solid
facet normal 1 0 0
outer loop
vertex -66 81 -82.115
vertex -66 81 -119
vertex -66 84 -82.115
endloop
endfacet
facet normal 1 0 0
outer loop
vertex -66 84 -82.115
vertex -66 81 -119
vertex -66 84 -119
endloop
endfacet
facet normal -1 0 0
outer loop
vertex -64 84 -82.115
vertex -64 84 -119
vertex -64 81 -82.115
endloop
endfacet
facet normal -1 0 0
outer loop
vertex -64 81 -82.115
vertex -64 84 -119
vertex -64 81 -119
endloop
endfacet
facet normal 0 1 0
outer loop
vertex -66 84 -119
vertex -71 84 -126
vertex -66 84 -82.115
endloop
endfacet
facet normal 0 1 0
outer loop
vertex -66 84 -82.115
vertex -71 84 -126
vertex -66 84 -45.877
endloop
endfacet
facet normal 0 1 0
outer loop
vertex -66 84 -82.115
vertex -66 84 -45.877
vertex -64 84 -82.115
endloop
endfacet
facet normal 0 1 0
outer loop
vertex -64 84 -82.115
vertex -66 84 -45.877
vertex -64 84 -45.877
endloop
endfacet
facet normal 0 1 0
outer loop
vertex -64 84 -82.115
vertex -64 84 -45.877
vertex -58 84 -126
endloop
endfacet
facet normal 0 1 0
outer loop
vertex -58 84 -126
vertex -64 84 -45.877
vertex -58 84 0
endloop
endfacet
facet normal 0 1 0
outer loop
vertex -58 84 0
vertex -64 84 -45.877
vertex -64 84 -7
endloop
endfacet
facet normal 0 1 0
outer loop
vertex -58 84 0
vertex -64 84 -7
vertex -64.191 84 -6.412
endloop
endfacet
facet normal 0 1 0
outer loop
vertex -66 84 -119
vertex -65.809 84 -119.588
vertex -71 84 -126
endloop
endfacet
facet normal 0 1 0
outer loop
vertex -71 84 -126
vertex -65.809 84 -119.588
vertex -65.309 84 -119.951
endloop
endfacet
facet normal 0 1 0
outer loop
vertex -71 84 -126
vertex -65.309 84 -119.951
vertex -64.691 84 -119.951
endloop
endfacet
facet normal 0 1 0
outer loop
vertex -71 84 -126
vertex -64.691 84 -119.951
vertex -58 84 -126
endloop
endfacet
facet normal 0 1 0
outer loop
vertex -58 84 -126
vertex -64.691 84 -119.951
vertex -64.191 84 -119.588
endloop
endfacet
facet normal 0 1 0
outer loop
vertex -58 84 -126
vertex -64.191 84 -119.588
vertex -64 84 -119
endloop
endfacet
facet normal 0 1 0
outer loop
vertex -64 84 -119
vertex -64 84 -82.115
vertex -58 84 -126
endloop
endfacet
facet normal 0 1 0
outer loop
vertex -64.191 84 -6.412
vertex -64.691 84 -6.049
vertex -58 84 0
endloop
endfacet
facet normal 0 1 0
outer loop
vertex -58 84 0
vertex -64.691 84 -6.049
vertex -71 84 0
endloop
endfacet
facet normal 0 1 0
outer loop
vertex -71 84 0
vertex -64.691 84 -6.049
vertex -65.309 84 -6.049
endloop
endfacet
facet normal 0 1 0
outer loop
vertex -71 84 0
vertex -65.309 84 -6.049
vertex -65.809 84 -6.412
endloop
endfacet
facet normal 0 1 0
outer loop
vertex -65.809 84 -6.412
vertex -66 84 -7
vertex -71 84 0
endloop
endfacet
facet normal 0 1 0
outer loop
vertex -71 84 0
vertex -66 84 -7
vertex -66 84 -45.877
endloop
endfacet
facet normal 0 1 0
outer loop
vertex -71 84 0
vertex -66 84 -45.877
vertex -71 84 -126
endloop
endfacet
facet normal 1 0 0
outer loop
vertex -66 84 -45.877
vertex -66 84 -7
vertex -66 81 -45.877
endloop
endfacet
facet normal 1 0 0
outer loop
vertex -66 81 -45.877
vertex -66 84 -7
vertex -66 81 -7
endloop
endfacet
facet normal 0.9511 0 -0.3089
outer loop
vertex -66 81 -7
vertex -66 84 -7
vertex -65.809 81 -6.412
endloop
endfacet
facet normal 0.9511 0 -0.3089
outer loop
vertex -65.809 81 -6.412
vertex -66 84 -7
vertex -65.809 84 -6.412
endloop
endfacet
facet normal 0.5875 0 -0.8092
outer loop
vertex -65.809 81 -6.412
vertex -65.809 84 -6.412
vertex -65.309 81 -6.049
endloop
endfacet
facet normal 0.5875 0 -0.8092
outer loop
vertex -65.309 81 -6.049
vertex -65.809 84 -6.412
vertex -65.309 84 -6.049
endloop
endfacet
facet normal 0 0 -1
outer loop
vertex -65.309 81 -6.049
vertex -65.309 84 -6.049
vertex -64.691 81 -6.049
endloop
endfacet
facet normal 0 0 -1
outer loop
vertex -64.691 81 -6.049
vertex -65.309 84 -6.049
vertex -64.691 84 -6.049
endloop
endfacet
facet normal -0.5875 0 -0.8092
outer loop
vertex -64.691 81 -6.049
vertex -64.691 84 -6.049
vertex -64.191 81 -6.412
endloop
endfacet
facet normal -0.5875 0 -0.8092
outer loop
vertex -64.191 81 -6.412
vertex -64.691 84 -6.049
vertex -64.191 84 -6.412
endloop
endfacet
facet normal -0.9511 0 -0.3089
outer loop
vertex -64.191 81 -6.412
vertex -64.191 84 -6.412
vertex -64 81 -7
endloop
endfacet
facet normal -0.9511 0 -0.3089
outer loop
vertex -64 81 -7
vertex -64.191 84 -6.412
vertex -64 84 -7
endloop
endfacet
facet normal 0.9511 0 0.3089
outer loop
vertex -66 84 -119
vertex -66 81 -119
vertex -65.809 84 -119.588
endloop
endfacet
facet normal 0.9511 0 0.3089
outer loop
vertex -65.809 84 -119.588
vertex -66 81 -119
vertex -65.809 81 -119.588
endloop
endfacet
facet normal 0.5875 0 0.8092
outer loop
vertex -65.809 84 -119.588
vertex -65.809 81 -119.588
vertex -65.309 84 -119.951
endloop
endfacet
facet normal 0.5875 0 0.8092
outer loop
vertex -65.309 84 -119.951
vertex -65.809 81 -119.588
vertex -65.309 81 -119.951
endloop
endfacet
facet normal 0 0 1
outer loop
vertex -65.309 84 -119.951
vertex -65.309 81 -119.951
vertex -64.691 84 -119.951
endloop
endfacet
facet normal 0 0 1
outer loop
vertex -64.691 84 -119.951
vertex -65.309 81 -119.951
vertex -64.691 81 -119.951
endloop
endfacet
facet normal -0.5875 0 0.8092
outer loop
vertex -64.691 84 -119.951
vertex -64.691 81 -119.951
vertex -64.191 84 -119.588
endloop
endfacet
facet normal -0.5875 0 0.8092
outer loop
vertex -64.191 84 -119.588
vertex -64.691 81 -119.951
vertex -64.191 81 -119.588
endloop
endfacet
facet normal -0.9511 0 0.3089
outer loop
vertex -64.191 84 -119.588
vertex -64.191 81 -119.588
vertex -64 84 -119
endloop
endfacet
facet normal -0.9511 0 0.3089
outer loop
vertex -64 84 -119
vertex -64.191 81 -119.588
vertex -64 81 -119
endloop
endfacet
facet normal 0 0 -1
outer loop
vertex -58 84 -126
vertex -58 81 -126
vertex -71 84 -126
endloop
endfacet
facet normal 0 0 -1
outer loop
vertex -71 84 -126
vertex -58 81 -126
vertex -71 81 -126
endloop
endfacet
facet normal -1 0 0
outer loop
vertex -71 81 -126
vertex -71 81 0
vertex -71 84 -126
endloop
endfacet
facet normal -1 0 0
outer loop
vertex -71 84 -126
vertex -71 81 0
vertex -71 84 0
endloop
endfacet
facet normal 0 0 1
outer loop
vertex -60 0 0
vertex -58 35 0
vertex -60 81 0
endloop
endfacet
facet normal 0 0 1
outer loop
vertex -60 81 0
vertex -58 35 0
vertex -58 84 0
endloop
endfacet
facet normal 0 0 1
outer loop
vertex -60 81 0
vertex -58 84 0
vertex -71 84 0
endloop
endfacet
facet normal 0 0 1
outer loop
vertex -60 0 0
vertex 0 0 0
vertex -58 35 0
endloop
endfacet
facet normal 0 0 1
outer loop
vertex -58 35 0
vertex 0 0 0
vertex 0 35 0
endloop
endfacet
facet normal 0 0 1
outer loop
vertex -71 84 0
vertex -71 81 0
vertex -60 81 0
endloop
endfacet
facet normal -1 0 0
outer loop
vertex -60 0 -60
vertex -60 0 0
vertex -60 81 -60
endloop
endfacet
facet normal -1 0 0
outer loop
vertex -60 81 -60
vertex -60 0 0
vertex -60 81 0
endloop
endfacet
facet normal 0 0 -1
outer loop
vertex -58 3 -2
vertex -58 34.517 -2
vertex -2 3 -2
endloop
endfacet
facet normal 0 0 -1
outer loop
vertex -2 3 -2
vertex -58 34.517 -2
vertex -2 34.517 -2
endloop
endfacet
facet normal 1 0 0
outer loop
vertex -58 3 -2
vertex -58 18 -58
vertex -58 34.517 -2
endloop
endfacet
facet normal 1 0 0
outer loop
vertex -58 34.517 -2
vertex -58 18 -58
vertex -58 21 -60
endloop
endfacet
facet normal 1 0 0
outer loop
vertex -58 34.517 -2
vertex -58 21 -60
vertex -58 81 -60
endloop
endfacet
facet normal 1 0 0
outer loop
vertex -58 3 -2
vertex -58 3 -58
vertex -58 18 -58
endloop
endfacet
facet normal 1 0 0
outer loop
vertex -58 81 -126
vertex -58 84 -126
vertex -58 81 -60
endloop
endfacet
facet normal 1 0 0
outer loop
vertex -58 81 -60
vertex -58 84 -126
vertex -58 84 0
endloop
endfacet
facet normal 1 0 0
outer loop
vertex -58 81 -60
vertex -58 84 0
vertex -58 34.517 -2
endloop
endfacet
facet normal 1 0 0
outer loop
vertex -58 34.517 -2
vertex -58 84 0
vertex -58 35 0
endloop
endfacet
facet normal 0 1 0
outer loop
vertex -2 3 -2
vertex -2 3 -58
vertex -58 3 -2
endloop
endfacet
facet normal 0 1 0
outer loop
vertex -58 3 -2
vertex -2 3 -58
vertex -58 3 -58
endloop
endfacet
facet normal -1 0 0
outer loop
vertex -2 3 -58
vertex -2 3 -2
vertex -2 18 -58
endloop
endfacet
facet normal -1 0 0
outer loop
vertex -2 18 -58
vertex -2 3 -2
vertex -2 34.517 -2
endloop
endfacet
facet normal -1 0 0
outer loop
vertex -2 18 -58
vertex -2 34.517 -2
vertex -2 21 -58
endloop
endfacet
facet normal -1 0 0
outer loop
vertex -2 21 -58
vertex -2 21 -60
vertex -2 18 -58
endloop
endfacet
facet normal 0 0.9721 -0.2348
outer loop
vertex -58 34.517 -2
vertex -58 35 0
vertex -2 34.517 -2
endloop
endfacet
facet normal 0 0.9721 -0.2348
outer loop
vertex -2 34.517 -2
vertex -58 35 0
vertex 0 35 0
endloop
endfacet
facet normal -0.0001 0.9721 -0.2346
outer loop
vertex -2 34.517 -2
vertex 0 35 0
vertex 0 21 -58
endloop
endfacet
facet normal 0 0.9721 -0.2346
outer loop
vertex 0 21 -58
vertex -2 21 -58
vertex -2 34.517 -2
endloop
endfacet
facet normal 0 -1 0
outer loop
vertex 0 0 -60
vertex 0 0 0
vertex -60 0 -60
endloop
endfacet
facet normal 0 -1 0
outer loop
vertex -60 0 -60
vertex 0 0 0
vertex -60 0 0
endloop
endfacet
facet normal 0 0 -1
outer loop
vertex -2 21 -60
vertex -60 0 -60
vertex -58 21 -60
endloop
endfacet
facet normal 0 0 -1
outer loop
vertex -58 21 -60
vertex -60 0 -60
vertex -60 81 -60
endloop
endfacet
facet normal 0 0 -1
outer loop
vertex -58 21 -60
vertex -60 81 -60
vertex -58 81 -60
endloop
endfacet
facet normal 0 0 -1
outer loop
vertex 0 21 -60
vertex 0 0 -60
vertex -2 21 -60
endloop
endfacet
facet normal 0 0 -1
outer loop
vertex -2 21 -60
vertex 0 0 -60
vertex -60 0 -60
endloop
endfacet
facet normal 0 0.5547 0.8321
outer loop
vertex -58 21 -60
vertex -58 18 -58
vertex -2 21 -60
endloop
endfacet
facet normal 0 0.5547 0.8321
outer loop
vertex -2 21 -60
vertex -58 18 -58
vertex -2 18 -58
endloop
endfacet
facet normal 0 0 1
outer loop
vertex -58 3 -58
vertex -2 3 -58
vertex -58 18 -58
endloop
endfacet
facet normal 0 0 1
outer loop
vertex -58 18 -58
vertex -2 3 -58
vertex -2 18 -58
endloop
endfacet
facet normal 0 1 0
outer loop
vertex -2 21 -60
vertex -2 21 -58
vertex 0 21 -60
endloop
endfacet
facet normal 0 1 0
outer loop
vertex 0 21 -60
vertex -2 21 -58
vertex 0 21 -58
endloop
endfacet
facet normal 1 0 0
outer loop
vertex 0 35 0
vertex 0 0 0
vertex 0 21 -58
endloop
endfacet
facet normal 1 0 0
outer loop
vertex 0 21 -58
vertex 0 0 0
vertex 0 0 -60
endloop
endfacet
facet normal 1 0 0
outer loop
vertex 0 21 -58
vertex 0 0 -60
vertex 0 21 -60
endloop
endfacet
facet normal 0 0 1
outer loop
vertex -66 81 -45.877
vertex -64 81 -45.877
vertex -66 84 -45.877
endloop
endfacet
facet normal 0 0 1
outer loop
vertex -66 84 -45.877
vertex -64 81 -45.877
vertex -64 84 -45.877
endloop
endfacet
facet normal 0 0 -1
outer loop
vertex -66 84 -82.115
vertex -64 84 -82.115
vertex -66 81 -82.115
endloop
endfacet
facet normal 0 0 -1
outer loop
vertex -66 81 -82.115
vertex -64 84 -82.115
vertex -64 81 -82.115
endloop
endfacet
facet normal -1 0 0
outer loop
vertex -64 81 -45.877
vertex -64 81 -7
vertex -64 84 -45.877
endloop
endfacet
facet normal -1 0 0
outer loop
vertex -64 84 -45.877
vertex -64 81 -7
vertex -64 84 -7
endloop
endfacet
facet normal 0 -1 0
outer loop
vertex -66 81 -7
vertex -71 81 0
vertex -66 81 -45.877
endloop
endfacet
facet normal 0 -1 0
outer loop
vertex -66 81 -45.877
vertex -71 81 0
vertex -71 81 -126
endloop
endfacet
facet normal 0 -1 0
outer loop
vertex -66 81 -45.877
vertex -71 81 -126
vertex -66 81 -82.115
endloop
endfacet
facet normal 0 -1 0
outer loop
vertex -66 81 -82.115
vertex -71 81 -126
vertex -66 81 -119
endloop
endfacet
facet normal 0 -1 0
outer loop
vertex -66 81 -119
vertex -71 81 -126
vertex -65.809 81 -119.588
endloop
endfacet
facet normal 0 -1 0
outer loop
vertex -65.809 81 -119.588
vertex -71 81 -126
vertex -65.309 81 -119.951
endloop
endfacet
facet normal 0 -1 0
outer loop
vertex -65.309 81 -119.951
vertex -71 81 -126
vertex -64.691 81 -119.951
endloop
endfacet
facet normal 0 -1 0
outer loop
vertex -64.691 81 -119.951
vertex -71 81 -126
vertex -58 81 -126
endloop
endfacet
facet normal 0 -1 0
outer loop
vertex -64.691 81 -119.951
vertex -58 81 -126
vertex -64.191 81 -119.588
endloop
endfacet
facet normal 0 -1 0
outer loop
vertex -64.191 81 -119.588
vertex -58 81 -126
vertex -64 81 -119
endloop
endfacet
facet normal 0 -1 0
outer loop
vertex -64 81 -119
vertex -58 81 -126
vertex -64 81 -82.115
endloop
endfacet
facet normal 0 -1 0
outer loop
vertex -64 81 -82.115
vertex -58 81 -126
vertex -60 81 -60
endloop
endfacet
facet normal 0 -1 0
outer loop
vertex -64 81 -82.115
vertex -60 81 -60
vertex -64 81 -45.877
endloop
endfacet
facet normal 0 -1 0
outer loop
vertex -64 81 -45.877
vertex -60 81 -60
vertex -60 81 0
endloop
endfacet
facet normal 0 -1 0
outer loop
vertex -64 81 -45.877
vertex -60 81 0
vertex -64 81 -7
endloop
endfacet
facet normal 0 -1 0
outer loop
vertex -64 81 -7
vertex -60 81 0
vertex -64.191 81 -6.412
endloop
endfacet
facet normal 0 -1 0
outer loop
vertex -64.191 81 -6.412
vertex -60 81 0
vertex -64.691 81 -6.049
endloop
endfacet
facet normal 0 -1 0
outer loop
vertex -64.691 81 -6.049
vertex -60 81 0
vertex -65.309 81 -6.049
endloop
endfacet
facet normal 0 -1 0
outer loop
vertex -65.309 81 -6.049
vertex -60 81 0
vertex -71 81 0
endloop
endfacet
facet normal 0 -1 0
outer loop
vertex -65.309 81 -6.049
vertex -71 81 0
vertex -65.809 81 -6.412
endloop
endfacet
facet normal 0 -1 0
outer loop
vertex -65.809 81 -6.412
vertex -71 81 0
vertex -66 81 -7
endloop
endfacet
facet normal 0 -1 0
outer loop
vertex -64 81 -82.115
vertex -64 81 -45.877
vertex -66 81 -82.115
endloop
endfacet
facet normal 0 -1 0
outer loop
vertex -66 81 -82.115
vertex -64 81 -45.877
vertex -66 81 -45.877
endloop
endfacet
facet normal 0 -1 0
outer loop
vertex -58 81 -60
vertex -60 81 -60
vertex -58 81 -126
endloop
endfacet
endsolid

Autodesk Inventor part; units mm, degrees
ref_plane "YZ Plane" through (0, 0, 0) normal (1, 0, 0) x (0, 1, 0)
ref_plane "XZ Plane" through (0, 0, 0) normal (0, 1, 0) x (-1, 0, 0)
ref_plane "XY Plane" through (0, 0, 0) normal (0, 0, 1) x (1, 0, 0)
sketch "Sketch1" plane through (0, 0, 0) normal (0, 1, 0) x (-1, 0, 0)
  line L0 (0, 0) -> (60, 0)
  line L1 (60, 0) -> (60, -60)
  line L2 (60, -60) -> (0, -60)
  line L3 (0, -60) -> (0, 0)
  dimension "d0" = 60
  dimension "d1" = 60
extrude "Extrusion1" add sketch "Sketch1" along normal blind 3
sketch "Sketch3" plane through (0, 3, 0) normal (0, 1, 0) x (1, 0, 0)
  line L0 (0, 60) -> (-60, 60) projected
  line L1 (0, 0) -> (0, 60) projected
  line L2 (-60, 60) -> (0, 60)
  line L3 (0, 60) -> (0, 58)
  line L4 (0, 58) -> (-60, 58)
  line L5 (-60, 58) -> (-60, 60)
  dimension "d4" = 2
extrude "Extrusion2" add sketch "Sketch3" along normal blind 18
sketch "Sketch4" plane through (0, 0, 0) normal (1, 0, 0) x (0, 0, -1)
  line L0 (0, 3) -> (58, 3) projected
  line L1 (0, 3) -> (0, 35)
  line L2 (60, 21) -> (58, 21) projected
  line L3 (0, 35) -> (58, 21)
  line L4 (58, 21) -> (58, 3)
  line L5 (58, 3) -> (0, 3)
  point P0 (0, 0)
  dimension "d7" = 32
extrude "Extrusion3" add sketch "Sketch4" against normal blind 2
sketch "Sketch5" plane through (-60, 0, -60) normal (-1, 0, 0) x (0, 0, 1)
  line L0 (2, 21) -> (0, 21) projected
  line L1 (0, 21) -> (2, 18)
  line L2 (2, 3) -> (2, 21) projected
  line L3 (2, 18) -> (2, 21)
  line L4 (2, 21) -> (0, 21)
  line L5 (0, 0) -> (0, 21) projected
  point P0 (60, 0)
  dimension "d10" = 3
extrude "Extrusion4" cut sketch "Sketch5" against normal blind 58
sketch "Sketch6" plane through (-60, 0, -60) normal (-1, 0, 0) x (0, 0, 1)
  line L0 (0, 0) -> (0, 21) projected
  line L1 (0, 21) -> (2, 21)
  line L2 (60, 35) -> (2, 21) projected
  line L3 (2, 21) -> (60, 35)
  line L4 (60, 35) -> (60, 0)
  line L5 (60, 0) -> (0, 0) projected
  line L6 (60, 0) -> (0, 0)
  line L7 (0, 0) -> (0, 21)
extrude "Extrusion5" add sketch "Sketch6" against normal blind 2
sketch "Sketch8" plane through (-58, 0, -60) normal (1, 0, 0) x (0, 0, -1)
  line L0 (-2, 3) -> (-60, 3) projected
  line L1 (-60, 3) -> (-58, 3)
  line L2 (-58, 3) -> (-58, 34.5172)
  line L3 (-2, 21) -> (-60, 35) projected
  line L4 (-58, 34.5172) -> (-60, 35)
  line L5 (-60, 35) -> (-60, 3)
  point P0 (-60, 0)
  dimension "d15" = 2
extrude "Extrusion6" add sketch "Sketch8" along normal blind 56
sketch "Sketch9" plane through (-60, 0, -60) normal (-1, 0, 0) x (0, 0, 1)
  line L0 (0, 21) -> (2, 21) projected
  line L1 (0, 21) -> (60, 21)
  line L2 (60, 21) -> (60, 81)
  line L3 (60, 81) -> (0, 81)
  line L4 (0, 81) -> (0, 21)
  point P0 (60, 0)
  dimension "d18" = 60
  dimension "d19" = 60
extrude "Extrusion7" add sketch "Sketch9" against normal blind 2
sketch "Sketch11" plane through (-58, 0, -60) normal (1, 0, 0) x (0, 0, -1)
  line L0 (0, 81) -> (-60, 81) projected
  line L1 (-60, 81) -> (66, 81)
  line L2 (66, 81) -> (66, 84)
  line L3 (66, 84) -> (-60, 84)
  line L4 (-60, 84) -> (-60, 81)
  point P0 (-60, 0)
  dimension "d26" = 3
  dimension "d27" = 126
extrude "Extrusion9" add sketch "Sketch11" against normal blind 13
sketch "Sketch12" plane through (-58, 84, 0) normal (0, 1, 0) x (1, 0, 0)
  circle A0 centre (-7, 119) radius 1
  line L0 (0, 126) -> (-13, 126) projected
  line L1 (0, 126) -> (0, 0) projected
  circle A1 centre (-7, 7) radius 1
  line L2 (0, 0) -> (-13, 0) projected
  point P0 (58, 0)
  dimension "d30" = 2
  dimension "d31" = 7
  dimension "d32" = 7
  dimension "d33" = 2
  dimension "d34" = 7
  dimension "d35" = 7
extrude "Extrusion10" cut sketch "Sketch12" against normal blind 13
sketch "Sketch13" plane through (-58, 84, 0) normal (0, 1, 0) x (1, 0, 0)
  circle A0 centre (-7, 7) radius 1 projected
  line L0 (-8, 7) -> (-8, 119)
  line L1 (-8, 119) -> (-6, 119)
  line L2 (-6, 119) -> (-6, 7)
  line L3 (-6, 7) -> (-8, 7)
  circle A1 centre (-7, 119) radius 1 projected
  point P0 (58, 0)
  dimension "d40" = 0
extrude "Extrusion11" cut sketch "Sketch13" against normal blind 10 contours A0 L0 A1 L2 | A1 L1 picked at (-6.9598, 118.6691)
sketch "Sketch14" plane through (-58, 84, 0) normal (0, 1, 0) x (1, 0, 0)
  point P0 (58, 0)
sketch "Sketch15" plane through (-58, 84, 0) normal (0, 1, 0) x (1, 0, 0)
  line L0 (-11.1798, 45.8772) -> (-2.4734, 45.8772)
  line L1 (-2.4734, 45.8772) -> (-2.4734, 82.1146)
  line L2 (-2.4734, 82.1146) -> (-11.1798, 82.1146)
  line L3 (-11.1798, 82.1146) -> (-11.1798, 45.8772)
  point P0 (58, 0)
extrude "Extrusion12" add sketch "Sketch15" against normal blind 3
properties part number "pickup_cup"
